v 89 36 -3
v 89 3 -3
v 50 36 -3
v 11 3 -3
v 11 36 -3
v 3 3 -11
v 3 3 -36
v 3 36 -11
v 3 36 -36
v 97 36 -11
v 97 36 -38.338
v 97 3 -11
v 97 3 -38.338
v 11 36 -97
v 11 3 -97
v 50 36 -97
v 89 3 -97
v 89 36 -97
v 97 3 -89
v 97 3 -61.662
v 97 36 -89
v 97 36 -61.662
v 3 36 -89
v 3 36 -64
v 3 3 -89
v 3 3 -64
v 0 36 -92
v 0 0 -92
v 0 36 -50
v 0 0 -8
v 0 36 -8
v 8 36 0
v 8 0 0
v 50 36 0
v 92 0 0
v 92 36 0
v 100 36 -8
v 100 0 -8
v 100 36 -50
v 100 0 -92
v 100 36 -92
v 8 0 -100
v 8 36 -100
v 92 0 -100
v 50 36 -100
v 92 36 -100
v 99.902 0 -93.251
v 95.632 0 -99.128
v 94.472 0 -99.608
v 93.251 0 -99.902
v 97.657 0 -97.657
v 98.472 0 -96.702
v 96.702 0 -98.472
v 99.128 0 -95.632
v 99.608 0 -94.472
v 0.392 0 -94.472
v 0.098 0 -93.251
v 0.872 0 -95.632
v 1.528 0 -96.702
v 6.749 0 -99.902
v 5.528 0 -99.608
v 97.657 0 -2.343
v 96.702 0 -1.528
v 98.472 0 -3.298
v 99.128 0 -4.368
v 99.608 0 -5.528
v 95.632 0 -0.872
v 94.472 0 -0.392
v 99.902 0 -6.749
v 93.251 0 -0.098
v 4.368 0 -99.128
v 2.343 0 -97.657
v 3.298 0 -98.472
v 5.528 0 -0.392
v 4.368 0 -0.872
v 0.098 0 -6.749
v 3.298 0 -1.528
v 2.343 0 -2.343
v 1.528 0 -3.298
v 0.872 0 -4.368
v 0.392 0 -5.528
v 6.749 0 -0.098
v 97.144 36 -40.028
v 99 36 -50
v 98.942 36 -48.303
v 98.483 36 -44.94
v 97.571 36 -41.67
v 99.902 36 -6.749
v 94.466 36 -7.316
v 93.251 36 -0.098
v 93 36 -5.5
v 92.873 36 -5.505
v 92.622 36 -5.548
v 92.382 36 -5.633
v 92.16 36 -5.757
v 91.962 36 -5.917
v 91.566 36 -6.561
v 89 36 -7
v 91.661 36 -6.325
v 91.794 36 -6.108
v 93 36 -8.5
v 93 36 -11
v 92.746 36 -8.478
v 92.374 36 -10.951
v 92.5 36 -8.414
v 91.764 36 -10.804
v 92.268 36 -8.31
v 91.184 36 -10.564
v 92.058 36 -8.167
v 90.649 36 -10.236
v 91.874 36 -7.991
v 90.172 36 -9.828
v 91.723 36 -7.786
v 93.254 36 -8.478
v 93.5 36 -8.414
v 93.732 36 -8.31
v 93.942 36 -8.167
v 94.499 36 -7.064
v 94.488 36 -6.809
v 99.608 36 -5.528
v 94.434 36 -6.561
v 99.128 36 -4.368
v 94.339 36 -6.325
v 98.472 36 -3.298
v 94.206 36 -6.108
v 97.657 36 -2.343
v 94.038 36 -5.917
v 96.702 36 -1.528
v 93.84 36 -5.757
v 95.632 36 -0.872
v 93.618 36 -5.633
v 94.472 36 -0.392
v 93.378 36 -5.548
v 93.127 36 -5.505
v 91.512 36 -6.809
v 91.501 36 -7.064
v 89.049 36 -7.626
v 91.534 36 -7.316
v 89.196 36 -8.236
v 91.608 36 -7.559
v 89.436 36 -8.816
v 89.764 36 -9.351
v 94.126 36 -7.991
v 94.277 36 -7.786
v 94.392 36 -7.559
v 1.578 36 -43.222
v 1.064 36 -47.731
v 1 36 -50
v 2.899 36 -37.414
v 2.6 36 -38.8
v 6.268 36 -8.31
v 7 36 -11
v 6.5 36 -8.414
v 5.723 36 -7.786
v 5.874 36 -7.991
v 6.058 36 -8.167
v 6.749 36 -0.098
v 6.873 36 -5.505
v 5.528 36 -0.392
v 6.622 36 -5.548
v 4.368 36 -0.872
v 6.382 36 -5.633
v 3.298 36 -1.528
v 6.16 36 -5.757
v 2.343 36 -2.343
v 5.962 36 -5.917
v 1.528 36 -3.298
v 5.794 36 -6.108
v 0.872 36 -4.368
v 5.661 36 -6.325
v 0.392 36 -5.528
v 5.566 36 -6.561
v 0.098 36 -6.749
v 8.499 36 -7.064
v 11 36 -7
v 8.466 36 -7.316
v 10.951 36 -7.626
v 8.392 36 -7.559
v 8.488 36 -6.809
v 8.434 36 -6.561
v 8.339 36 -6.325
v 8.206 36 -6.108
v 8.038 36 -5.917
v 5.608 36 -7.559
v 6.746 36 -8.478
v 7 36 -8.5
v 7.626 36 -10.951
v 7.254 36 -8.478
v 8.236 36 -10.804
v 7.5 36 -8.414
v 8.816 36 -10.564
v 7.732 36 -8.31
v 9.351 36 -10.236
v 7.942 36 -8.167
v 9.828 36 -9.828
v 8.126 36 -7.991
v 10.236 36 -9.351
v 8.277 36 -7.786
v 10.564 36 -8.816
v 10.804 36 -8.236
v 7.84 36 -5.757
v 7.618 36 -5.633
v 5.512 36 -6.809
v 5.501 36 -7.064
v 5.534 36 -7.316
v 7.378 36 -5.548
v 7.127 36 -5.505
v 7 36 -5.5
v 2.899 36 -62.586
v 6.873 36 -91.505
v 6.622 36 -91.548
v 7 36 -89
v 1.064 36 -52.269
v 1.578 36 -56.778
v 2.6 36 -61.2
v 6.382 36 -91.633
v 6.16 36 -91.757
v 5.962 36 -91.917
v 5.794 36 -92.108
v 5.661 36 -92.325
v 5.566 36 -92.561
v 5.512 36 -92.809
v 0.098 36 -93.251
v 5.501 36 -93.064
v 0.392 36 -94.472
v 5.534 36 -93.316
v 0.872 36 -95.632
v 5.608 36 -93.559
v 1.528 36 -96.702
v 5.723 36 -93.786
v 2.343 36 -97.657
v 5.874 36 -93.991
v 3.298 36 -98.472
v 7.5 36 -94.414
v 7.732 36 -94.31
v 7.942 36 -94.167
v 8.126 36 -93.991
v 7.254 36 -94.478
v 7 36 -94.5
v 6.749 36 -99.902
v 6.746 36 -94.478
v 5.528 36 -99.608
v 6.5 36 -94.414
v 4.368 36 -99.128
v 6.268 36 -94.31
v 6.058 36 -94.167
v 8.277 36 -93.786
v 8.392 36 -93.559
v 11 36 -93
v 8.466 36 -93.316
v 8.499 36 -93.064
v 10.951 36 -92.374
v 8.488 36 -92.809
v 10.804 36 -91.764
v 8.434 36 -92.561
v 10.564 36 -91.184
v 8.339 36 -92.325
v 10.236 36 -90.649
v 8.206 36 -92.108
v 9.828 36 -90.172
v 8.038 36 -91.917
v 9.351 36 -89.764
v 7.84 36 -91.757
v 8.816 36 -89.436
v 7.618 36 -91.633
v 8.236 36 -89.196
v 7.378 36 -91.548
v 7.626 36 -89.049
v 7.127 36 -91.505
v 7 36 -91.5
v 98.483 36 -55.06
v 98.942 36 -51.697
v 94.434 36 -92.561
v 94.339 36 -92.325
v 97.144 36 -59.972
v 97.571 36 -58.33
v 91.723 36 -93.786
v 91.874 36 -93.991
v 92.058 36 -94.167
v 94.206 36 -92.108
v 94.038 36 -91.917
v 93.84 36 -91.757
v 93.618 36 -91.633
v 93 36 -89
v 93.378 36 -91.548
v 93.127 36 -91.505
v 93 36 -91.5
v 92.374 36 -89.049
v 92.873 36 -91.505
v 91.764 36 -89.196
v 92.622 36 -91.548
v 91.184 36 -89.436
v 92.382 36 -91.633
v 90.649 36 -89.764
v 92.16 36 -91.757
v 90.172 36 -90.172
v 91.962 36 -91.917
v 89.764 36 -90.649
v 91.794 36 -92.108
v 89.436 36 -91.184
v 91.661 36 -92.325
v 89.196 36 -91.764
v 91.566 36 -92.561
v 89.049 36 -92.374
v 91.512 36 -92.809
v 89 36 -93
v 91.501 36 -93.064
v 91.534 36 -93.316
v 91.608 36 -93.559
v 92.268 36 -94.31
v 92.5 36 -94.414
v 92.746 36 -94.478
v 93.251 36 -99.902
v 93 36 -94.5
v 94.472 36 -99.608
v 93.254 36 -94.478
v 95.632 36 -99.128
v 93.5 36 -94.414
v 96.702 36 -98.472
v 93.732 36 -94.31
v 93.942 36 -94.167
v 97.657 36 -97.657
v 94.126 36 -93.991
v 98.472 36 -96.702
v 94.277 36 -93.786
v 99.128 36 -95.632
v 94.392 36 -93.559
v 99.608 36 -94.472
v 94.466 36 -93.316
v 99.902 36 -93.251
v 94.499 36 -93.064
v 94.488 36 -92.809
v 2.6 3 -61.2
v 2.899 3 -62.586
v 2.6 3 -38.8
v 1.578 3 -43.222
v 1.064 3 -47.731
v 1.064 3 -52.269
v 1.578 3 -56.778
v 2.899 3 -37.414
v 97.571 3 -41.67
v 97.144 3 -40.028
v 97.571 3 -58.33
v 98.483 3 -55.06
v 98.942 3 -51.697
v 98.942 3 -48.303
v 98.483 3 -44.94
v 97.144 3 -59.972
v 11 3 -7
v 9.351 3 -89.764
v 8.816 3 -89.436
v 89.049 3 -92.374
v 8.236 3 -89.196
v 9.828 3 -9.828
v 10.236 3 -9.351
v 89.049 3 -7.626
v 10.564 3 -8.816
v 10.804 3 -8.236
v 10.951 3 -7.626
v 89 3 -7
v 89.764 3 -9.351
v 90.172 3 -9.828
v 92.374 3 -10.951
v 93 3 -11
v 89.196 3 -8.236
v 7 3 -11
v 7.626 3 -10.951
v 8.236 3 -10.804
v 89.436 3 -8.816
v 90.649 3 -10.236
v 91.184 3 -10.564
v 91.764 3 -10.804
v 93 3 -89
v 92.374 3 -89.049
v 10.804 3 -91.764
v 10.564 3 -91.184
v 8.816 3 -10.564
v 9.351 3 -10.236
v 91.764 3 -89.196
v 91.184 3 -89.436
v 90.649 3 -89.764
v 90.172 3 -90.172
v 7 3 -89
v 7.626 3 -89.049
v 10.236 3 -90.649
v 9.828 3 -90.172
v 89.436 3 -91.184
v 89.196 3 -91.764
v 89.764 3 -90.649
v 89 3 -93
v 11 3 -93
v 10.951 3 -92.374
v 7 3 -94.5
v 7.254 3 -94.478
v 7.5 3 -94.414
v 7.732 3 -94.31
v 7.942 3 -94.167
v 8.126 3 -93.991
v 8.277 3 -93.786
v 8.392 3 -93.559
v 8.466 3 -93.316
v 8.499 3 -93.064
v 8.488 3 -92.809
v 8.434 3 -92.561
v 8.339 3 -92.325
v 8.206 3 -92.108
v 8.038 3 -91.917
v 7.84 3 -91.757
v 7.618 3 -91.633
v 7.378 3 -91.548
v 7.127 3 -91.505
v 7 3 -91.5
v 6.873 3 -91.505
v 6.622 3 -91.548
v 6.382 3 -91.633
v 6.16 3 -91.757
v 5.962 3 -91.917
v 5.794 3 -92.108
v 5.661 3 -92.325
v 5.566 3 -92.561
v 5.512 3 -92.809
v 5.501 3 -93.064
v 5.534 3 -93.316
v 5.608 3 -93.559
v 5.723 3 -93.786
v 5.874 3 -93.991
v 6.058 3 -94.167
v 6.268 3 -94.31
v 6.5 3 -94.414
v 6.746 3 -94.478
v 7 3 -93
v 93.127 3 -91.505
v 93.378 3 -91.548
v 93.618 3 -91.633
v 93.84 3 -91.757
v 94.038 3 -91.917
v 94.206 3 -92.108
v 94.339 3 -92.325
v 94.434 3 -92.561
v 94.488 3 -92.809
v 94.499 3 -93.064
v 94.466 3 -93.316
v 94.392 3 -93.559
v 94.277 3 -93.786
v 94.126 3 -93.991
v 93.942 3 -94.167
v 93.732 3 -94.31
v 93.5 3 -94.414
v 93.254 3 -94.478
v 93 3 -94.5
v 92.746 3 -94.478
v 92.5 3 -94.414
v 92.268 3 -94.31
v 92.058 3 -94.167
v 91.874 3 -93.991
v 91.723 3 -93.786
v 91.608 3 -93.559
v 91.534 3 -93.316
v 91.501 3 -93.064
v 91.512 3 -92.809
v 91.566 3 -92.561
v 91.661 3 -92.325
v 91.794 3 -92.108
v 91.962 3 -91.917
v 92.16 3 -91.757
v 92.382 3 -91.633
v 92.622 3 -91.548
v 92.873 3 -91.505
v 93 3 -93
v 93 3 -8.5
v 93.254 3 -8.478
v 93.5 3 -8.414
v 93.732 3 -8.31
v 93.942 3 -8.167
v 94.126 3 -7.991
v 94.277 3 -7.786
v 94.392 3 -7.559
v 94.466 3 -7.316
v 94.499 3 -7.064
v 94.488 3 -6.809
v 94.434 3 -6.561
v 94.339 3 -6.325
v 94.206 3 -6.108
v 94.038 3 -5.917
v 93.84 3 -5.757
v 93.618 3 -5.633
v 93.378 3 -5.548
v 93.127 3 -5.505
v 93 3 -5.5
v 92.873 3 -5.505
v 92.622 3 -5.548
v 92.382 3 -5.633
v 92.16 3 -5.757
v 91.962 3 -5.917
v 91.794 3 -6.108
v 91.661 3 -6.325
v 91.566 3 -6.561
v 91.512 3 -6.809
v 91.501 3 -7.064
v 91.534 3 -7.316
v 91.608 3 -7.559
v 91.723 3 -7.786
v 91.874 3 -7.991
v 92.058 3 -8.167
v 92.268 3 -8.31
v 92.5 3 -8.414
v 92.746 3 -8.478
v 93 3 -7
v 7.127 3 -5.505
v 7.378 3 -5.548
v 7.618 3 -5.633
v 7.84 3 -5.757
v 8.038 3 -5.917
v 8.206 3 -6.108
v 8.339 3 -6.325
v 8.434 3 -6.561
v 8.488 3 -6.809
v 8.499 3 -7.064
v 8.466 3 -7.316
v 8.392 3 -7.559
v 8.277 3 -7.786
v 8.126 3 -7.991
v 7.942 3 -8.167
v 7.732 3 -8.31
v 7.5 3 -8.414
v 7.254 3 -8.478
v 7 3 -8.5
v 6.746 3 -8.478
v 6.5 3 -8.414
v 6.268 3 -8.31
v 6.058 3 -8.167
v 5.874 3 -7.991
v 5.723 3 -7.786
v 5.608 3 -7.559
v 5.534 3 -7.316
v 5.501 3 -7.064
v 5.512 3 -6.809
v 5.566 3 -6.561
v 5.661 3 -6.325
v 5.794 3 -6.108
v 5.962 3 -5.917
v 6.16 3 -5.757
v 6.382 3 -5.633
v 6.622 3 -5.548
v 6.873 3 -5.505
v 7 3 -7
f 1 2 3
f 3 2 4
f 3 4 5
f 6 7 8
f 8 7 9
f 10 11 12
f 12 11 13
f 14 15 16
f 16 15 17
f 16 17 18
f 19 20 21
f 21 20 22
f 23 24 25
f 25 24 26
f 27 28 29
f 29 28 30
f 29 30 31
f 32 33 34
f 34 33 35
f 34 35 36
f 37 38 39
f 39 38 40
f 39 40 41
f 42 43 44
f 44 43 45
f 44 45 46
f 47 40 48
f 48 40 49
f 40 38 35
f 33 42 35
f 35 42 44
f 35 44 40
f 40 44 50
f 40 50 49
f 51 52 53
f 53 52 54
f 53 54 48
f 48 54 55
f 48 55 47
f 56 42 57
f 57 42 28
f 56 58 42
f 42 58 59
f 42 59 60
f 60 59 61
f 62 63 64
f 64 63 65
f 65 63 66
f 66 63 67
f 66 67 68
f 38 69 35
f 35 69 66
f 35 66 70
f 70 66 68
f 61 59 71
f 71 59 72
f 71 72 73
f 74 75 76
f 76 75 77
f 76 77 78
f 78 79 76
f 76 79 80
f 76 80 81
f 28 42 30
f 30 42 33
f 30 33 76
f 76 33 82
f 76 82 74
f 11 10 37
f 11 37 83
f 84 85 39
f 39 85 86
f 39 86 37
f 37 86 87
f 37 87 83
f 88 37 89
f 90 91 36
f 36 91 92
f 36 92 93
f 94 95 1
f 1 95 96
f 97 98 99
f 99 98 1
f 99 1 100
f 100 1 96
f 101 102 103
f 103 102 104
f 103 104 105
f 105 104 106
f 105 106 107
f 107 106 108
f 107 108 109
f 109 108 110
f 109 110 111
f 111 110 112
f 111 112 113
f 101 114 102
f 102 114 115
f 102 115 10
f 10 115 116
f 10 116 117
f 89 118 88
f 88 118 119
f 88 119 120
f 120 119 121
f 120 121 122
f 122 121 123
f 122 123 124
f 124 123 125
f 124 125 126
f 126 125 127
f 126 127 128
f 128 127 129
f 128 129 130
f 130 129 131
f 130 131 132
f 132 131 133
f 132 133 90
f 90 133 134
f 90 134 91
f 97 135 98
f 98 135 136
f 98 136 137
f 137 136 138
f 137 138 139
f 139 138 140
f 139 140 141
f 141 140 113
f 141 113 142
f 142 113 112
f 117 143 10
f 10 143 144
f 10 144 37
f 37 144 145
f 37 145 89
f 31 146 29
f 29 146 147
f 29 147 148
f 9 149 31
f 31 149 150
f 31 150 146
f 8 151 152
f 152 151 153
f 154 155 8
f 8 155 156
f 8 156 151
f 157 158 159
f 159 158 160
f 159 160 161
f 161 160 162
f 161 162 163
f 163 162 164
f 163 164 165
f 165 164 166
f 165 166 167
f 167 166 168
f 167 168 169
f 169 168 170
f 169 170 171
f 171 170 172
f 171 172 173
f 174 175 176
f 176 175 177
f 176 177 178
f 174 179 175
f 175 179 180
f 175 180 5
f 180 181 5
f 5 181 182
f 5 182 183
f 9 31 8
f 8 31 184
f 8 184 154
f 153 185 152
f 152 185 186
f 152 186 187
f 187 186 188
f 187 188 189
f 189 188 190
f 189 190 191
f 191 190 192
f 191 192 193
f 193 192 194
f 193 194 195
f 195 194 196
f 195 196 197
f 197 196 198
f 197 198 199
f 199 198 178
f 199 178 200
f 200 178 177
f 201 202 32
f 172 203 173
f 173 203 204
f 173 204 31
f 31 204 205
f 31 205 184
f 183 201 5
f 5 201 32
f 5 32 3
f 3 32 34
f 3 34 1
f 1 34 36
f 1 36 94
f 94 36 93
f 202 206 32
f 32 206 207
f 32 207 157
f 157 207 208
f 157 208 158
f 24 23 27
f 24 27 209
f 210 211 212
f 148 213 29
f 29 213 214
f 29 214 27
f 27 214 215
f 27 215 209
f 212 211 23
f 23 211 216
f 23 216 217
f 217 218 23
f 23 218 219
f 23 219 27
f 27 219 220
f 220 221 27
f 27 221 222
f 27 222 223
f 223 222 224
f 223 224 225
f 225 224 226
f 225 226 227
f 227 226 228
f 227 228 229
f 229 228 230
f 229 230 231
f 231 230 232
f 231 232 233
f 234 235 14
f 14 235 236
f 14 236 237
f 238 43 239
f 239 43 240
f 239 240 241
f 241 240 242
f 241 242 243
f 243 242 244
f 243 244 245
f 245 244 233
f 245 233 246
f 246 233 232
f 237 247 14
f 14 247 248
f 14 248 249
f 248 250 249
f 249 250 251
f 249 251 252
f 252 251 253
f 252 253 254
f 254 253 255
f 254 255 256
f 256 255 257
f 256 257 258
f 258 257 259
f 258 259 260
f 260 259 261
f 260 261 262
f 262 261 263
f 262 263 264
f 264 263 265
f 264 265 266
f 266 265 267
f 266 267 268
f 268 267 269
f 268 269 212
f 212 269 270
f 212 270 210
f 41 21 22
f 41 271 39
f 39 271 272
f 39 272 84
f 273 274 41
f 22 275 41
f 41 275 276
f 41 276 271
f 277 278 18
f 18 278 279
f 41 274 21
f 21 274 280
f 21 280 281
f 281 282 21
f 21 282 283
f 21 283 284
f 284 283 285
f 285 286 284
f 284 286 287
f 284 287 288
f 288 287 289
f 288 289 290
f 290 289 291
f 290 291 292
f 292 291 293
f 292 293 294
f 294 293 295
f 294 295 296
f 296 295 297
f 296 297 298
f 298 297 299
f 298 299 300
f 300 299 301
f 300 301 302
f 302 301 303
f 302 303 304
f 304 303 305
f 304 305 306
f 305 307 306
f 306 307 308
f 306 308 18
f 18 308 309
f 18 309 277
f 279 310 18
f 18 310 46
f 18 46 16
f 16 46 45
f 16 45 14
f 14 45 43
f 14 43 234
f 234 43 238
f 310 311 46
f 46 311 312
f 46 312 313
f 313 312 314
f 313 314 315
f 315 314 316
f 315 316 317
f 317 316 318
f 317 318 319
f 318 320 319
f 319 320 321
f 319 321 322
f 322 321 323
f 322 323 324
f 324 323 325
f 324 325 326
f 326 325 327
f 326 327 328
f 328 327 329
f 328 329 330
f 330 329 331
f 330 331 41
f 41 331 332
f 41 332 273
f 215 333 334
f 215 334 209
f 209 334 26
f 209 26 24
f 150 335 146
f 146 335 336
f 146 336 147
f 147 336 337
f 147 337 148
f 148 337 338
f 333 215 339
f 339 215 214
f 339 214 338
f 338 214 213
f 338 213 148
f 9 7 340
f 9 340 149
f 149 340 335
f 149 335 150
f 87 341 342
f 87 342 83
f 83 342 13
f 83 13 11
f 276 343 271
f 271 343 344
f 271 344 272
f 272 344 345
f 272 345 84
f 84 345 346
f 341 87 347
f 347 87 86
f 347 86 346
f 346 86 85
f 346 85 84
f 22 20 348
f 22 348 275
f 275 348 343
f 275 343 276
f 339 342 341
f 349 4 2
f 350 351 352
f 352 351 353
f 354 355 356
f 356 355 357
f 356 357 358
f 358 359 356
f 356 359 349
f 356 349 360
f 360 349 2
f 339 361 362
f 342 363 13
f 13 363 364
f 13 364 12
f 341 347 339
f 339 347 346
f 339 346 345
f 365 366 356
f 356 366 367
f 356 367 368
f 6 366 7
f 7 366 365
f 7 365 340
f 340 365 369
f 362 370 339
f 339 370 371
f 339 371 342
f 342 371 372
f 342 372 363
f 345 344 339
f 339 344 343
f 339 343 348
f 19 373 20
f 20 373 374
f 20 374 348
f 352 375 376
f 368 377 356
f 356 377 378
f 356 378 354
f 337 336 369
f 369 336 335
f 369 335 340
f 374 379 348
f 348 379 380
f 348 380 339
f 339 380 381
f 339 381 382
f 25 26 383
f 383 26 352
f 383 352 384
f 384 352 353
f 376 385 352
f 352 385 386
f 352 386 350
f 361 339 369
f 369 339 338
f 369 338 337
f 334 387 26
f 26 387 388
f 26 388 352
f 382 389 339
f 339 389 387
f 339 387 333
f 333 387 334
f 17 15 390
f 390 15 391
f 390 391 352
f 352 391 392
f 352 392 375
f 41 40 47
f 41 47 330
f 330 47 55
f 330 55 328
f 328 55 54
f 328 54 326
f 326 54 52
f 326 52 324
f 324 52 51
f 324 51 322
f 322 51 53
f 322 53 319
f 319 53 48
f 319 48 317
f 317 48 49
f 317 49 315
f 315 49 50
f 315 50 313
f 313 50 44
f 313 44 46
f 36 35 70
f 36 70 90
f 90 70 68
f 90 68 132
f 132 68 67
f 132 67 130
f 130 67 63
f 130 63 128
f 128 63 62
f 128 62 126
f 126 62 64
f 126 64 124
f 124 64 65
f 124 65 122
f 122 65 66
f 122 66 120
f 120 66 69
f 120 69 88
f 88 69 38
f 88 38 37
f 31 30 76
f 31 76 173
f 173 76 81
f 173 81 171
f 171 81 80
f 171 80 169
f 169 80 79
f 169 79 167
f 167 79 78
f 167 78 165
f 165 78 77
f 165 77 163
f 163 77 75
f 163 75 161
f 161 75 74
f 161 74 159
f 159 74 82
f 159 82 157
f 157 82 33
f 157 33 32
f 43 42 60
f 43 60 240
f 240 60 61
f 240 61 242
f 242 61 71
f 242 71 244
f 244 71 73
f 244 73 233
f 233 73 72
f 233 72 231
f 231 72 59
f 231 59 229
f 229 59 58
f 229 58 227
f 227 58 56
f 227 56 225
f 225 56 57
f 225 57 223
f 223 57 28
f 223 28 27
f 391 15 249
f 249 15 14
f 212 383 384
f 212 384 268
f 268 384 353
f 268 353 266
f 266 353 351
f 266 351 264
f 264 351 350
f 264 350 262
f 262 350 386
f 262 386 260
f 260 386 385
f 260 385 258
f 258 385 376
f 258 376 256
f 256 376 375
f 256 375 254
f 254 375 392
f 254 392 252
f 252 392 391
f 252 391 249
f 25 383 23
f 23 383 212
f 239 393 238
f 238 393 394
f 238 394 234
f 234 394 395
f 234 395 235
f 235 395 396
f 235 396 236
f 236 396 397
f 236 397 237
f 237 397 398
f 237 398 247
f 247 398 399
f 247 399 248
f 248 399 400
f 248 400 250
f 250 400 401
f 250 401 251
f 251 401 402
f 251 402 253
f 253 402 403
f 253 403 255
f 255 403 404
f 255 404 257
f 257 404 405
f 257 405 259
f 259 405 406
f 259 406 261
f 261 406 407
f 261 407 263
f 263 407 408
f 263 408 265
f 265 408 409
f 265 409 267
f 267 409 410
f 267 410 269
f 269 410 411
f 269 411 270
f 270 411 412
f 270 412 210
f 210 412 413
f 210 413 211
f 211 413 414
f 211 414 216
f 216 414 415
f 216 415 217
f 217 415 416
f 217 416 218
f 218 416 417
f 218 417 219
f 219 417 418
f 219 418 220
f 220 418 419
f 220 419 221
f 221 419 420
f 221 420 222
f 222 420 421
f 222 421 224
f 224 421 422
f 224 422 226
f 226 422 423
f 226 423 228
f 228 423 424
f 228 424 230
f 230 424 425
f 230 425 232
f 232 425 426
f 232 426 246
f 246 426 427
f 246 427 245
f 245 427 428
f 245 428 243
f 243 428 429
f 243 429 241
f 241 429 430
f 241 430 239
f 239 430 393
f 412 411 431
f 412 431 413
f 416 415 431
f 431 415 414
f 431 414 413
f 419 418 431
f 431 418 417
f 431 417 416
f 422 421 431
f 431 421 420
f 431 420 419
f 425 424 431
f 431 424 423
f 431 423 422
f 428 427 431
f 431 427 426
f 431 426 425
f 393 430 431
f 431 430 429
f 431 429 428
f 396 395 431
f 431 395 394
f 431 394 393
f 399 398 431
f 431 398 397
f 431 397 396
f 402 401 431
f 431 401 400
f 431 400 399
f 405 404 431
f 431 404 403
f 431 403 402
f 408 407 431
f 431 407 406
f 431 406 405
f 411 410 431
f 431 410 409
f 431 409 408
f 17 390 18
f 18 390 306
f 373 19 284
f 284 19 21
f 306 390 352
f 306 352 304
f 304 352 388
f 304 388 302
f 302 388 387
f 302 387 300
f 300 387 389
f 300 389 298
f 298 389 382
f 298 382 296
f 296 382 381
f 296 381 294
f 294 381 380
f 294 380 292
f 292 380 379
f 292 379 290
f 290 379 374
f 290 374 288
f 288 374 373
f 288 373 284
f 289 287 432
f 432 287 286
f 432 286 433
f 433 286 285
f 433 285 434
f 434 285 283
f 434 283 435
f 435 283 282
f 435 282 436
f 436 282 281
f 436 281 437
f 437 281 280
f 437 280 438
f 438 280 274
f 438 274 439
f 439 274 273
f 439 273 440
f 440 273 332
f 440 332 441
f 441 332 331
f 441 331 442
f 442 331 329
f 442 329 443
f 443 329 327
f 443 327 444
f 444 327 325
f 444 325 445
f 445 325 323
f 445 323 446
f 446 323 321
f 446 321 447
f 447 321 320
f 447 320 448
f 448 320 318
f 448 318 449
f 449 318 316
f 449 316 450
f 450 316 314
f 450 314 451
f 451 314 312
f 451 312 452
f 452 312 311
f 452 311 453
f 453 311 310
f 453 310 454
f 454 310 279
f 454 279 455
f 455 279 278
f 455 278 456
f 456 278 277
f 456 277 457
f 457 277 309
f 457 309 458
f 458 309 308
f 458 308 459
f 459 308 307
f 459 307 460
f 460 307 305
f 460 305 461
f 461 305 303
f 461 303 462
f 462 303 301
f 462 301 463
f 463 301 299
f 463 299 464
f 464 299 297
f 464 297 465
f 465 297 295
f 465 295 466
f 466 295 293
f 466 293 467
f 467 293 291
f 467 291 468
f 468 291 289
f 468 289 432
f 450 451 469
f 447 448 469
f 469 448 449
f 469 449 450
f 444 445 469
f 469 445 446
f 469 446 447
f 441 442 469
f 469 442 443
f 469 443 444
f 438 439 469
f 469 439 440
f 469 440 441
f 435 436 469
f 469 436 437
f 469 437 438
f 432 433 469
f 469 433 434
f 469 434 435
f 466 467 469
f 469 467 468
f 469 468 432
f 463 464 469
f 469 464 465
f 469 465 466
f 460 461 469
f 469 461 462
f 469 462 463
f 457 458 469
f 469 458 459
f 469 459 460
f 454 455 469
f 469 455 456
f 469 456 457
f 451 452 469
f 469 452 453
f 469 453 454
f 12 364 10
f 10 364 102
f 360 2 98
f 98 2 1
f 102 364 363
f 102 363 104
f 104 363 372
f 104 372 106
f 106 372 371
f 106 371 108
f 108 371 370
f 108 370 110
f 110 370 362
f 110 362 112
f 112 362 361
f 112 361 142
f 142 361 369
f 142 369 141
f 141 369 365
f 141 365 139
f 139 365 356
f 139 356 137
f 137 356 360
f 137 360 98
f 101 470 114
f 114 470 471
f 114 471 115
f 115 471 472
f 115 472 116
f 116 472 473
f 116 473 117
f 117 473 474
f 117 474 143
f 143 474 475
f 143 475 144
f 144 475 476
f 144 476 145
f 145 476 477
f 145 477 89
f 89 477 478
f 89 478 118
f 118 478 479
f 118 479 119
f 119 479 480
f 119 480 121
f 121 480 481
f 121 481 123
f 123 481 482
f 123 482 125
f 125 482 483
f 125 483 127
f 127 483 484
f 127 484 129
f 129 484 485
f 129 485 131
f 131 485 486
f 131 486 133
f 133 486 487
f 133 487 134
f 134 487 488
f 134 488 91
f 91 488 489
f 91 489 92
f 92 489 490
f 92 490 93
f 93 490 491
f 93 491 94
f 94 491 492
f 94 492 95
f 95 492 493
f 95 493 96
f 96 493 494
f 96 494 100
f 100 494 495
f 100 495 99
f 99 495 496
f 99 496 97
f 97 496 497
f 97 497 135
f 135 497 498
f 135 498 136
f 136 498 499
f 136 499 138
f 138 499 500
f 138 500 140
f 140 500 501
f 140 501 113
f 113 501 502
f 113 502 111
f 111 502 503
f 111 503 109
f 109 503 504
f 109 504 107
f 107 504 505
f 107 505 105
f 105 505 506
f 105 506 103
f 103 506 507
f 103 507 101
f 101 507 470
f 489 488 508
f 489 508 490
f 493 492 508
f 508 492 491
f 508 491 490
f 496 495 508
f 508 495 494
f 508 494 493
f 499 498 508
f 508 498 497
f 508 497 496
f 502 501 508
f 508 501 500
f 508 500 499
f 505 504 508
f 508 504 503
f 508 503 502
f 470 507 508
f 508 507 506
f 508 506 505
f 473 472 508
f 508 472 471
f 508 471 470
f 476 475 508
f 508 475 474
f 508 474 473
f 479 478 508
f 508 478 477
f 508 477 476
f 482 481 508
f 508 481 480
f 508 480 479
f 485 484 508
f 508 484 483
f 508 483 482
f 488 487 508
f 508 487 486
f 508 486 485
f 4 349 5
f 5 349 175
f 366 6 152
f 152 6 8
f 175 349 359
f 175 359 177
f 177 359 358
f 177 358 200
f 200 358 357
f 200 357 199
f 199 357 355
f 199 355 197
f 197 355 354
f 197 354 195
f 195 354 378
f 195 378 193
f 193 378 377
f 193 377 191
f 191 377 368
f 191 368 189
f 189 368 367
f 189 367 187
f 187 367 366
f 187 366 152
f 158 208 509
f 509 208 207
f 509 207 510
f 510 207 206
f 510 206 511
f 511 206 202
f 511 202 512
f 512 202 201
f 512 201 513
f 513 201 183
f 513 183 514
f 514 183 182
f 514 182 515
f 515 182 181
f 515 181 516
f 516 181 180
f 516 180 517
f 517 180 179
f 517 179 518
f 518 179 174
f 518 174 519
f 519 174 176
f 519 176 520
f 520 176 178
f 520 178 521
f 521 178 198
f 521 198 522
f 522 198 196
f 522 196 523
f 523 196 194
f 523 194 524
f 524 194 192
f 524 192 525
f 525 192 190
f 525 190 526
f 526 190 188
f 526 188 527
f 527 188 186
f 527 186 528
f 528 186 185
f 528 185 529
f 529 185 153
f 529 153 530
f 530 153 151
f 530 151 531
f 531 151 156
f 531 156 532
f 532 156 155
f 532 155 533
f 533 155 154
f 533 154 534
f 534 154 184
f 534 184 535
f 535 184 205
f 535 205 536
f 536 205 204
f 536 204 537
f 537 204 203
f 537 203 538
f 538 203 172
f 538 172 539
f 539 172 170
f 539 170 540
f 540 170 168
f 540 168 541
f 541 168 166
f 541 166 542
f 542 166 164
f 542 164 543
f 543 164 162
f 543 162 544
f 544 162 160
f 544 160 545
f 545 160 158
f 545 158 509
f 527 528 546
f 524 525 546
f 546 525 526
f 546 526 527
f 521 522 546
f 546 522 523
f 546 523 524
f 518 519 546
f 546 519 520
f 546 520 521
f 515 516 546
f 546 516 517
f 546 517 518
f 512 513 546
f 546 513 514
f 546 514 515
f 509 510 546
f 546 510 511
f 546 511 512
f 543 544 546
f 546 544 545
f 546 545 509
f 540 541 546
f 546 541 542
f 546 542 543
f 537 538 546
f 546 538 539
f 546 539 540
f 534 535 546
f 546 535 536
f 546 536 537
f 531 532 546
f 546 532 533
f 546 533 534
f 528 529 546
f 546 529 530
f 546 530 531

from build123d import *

# Parameters (mm, degrees)
SKETCH_1_W      = 100
SKETCH_1_H      = 100
EXTRUDE_1_DEPTH = 3
SKETCH_4_W      = 100
SKETCH_4_H      = 100
EXTRUDE_4_DEPTH = 33
FILLET_3_R      = 8
SKETCH_7_R      = 1.5
EXTRUDE_6_DEPTH = 33


with BuildPart() as part:
    # Эскиз1 → Бобышка-Вытянуть1 (new body)
    with BuildSketch(Plane(origin=(0, 0, 0), x_dir=(1, 0, 0), z_dir=(0, 1, 0))):
        with Locations((50, 50)):
            Rectangle(SKETCH_1_W, SKETCH_1_H)
    extrude(amount=EXTRUDE_1_DEPTH)

    # Эскиз4 → Бобышка-Вытянуть4 (add)
    with BuildSketch(Plane(origin=(0, 3, 0), x_dir=(1, 0, 0), z_dir=(0, 1, 0))):
        with Locations((50, 50)):
            Rectangle(SKETCH_4_W, SKETCH_4_H)
        with BuildLine():
            Line((97, 97), (3, 97))
            Line((3, 97), (3, 64))
            ThreePointArc((3, 64), (2.899494937, 62.585786438), (2.6, 61.2))
            ThreePointArc((2.6, 61.2), (1, 50), (2.6, 38.8))
            ThreePointArc((2.6, 38.8), (2.899494937, 37.414213562), (3, 36))
            Line((3, 36), (3, 3))
            Line((3, 3), (97, 3))
            Line((97, 3), (97, 38.33809621))
            ThreePointArc((97, 38.33809621), (97.143892394, 40.02840472), (97.571428571, 41.670068722))
            ThreePointArc((97.571428571, 41.670068722), (99, 50), (97.571428571, 58.329931278))
            ThreePointArc((97.571428571, 58.329931278), (97.143892394, 59.97159528), (97, 61.66190379))
            Line((97, 61.66190379), (97, 97))
        make_face(mode=Mode.SUBTRACT)
    extrude(amount=EXTRUDE_4_DEPTH)

    # Скругление3
    fillet_3_edges = [part.edges().sort_by_distance(p)[0] for p in [
        (0, 18, -100),
        (100, 18, -100),
        (100, 18, 0),
        (0, 18, 0),
    ]]
    fillet(fillet_3_edges, radius=FILLET_3_R)

    # Эскиз7 → Бобышка-Вытянуть6 (add)
    # profile 1 of 4: a face of its own
    with BuildSketch(Plane(origin=(0, 3, 0), x_dir=(1, 0, 0), z_dir=(0, 1, 0))):
        with BuildLine():
            Line((3, 89), (3, 97))
            Line((3, 97), (11, 97))
            Line((11, 97), (11, 93))
            ThreePointArc((11, 93), (9.828427125, 90.171572875), (7, 89))
            Line((7, 89), (3, 89))
        make_face()
        with Locations(Location((7, 93, 0), (0, 0, 270))):
            Circle(SKETCH_7_R, mode=Mode.SUBTRACT)
    # profile 2 of 4: a face of its own
    with BuildSketch(Plane(origin=(0, 3, 0), x_dir=(1, 0, 0), z_dir=(0, 1, 0))):
        with BuildLine():
            Line((89, 93), (89, 97))
            Line((89, 97), (97, 97))
            Line((97, 97), (97, 89))
            Line((97, 89), (93, 89))
            ThreePointArc((93, 89), (90.171572875, 90.171572875), (89, 93))
        make_face()
        with Locations(Location((93, 93, 0), (0, 0, 90))):
            Circle(SKETCH_7_R, mode=Mode.SUBTRACT)
    # profile 3 of 4: a face of its own
    with BuildSketch(Plane(origin=(0, 3, 0), x_dir=(1, 0, 0), z_dir=(0, 1, 0))):
        with BuildLine():
            Line((97, 11), (97, 3))
            Line((97, 3), (89, 3))
            Line((89, 3), (89, 7))
            ThreePointArc((89, 7), (90.171572875, 9.828427125), (93, 11))
            Line((93, 11), (97, 11))
        make_face()
        with Locations(Location((93, 7, 0), (0, 0, 270))):
            Circle(SKETCH_7_R, mode=Mode.SUBTRACT)
    # profile 4 of 4: a face of its own
    with BuildSketch(Plane(origin=(0, 3, 0), x_dir=(1, 0, 0), z_dir=(0, 1, 0))):
        with BuildLine():
            Line((11, 7), (11, 3))
            Line((11, 3), (3, 3))
            Line((3, 3), (3, 11))
            Line((3, 11), (7, 11))
            ThreePointArc((7, 11), (9.828427125, 9.828427125), (11, 7))
        make_face()
        with Locations(Location((7, 7, 0), (0, 0, 90))):
            Circle(SKETCH_7_R, mode=Mode.SUBTRACT)
    extrude(amount=EXTRUDE_6_DEPTH)


solid = part.part
